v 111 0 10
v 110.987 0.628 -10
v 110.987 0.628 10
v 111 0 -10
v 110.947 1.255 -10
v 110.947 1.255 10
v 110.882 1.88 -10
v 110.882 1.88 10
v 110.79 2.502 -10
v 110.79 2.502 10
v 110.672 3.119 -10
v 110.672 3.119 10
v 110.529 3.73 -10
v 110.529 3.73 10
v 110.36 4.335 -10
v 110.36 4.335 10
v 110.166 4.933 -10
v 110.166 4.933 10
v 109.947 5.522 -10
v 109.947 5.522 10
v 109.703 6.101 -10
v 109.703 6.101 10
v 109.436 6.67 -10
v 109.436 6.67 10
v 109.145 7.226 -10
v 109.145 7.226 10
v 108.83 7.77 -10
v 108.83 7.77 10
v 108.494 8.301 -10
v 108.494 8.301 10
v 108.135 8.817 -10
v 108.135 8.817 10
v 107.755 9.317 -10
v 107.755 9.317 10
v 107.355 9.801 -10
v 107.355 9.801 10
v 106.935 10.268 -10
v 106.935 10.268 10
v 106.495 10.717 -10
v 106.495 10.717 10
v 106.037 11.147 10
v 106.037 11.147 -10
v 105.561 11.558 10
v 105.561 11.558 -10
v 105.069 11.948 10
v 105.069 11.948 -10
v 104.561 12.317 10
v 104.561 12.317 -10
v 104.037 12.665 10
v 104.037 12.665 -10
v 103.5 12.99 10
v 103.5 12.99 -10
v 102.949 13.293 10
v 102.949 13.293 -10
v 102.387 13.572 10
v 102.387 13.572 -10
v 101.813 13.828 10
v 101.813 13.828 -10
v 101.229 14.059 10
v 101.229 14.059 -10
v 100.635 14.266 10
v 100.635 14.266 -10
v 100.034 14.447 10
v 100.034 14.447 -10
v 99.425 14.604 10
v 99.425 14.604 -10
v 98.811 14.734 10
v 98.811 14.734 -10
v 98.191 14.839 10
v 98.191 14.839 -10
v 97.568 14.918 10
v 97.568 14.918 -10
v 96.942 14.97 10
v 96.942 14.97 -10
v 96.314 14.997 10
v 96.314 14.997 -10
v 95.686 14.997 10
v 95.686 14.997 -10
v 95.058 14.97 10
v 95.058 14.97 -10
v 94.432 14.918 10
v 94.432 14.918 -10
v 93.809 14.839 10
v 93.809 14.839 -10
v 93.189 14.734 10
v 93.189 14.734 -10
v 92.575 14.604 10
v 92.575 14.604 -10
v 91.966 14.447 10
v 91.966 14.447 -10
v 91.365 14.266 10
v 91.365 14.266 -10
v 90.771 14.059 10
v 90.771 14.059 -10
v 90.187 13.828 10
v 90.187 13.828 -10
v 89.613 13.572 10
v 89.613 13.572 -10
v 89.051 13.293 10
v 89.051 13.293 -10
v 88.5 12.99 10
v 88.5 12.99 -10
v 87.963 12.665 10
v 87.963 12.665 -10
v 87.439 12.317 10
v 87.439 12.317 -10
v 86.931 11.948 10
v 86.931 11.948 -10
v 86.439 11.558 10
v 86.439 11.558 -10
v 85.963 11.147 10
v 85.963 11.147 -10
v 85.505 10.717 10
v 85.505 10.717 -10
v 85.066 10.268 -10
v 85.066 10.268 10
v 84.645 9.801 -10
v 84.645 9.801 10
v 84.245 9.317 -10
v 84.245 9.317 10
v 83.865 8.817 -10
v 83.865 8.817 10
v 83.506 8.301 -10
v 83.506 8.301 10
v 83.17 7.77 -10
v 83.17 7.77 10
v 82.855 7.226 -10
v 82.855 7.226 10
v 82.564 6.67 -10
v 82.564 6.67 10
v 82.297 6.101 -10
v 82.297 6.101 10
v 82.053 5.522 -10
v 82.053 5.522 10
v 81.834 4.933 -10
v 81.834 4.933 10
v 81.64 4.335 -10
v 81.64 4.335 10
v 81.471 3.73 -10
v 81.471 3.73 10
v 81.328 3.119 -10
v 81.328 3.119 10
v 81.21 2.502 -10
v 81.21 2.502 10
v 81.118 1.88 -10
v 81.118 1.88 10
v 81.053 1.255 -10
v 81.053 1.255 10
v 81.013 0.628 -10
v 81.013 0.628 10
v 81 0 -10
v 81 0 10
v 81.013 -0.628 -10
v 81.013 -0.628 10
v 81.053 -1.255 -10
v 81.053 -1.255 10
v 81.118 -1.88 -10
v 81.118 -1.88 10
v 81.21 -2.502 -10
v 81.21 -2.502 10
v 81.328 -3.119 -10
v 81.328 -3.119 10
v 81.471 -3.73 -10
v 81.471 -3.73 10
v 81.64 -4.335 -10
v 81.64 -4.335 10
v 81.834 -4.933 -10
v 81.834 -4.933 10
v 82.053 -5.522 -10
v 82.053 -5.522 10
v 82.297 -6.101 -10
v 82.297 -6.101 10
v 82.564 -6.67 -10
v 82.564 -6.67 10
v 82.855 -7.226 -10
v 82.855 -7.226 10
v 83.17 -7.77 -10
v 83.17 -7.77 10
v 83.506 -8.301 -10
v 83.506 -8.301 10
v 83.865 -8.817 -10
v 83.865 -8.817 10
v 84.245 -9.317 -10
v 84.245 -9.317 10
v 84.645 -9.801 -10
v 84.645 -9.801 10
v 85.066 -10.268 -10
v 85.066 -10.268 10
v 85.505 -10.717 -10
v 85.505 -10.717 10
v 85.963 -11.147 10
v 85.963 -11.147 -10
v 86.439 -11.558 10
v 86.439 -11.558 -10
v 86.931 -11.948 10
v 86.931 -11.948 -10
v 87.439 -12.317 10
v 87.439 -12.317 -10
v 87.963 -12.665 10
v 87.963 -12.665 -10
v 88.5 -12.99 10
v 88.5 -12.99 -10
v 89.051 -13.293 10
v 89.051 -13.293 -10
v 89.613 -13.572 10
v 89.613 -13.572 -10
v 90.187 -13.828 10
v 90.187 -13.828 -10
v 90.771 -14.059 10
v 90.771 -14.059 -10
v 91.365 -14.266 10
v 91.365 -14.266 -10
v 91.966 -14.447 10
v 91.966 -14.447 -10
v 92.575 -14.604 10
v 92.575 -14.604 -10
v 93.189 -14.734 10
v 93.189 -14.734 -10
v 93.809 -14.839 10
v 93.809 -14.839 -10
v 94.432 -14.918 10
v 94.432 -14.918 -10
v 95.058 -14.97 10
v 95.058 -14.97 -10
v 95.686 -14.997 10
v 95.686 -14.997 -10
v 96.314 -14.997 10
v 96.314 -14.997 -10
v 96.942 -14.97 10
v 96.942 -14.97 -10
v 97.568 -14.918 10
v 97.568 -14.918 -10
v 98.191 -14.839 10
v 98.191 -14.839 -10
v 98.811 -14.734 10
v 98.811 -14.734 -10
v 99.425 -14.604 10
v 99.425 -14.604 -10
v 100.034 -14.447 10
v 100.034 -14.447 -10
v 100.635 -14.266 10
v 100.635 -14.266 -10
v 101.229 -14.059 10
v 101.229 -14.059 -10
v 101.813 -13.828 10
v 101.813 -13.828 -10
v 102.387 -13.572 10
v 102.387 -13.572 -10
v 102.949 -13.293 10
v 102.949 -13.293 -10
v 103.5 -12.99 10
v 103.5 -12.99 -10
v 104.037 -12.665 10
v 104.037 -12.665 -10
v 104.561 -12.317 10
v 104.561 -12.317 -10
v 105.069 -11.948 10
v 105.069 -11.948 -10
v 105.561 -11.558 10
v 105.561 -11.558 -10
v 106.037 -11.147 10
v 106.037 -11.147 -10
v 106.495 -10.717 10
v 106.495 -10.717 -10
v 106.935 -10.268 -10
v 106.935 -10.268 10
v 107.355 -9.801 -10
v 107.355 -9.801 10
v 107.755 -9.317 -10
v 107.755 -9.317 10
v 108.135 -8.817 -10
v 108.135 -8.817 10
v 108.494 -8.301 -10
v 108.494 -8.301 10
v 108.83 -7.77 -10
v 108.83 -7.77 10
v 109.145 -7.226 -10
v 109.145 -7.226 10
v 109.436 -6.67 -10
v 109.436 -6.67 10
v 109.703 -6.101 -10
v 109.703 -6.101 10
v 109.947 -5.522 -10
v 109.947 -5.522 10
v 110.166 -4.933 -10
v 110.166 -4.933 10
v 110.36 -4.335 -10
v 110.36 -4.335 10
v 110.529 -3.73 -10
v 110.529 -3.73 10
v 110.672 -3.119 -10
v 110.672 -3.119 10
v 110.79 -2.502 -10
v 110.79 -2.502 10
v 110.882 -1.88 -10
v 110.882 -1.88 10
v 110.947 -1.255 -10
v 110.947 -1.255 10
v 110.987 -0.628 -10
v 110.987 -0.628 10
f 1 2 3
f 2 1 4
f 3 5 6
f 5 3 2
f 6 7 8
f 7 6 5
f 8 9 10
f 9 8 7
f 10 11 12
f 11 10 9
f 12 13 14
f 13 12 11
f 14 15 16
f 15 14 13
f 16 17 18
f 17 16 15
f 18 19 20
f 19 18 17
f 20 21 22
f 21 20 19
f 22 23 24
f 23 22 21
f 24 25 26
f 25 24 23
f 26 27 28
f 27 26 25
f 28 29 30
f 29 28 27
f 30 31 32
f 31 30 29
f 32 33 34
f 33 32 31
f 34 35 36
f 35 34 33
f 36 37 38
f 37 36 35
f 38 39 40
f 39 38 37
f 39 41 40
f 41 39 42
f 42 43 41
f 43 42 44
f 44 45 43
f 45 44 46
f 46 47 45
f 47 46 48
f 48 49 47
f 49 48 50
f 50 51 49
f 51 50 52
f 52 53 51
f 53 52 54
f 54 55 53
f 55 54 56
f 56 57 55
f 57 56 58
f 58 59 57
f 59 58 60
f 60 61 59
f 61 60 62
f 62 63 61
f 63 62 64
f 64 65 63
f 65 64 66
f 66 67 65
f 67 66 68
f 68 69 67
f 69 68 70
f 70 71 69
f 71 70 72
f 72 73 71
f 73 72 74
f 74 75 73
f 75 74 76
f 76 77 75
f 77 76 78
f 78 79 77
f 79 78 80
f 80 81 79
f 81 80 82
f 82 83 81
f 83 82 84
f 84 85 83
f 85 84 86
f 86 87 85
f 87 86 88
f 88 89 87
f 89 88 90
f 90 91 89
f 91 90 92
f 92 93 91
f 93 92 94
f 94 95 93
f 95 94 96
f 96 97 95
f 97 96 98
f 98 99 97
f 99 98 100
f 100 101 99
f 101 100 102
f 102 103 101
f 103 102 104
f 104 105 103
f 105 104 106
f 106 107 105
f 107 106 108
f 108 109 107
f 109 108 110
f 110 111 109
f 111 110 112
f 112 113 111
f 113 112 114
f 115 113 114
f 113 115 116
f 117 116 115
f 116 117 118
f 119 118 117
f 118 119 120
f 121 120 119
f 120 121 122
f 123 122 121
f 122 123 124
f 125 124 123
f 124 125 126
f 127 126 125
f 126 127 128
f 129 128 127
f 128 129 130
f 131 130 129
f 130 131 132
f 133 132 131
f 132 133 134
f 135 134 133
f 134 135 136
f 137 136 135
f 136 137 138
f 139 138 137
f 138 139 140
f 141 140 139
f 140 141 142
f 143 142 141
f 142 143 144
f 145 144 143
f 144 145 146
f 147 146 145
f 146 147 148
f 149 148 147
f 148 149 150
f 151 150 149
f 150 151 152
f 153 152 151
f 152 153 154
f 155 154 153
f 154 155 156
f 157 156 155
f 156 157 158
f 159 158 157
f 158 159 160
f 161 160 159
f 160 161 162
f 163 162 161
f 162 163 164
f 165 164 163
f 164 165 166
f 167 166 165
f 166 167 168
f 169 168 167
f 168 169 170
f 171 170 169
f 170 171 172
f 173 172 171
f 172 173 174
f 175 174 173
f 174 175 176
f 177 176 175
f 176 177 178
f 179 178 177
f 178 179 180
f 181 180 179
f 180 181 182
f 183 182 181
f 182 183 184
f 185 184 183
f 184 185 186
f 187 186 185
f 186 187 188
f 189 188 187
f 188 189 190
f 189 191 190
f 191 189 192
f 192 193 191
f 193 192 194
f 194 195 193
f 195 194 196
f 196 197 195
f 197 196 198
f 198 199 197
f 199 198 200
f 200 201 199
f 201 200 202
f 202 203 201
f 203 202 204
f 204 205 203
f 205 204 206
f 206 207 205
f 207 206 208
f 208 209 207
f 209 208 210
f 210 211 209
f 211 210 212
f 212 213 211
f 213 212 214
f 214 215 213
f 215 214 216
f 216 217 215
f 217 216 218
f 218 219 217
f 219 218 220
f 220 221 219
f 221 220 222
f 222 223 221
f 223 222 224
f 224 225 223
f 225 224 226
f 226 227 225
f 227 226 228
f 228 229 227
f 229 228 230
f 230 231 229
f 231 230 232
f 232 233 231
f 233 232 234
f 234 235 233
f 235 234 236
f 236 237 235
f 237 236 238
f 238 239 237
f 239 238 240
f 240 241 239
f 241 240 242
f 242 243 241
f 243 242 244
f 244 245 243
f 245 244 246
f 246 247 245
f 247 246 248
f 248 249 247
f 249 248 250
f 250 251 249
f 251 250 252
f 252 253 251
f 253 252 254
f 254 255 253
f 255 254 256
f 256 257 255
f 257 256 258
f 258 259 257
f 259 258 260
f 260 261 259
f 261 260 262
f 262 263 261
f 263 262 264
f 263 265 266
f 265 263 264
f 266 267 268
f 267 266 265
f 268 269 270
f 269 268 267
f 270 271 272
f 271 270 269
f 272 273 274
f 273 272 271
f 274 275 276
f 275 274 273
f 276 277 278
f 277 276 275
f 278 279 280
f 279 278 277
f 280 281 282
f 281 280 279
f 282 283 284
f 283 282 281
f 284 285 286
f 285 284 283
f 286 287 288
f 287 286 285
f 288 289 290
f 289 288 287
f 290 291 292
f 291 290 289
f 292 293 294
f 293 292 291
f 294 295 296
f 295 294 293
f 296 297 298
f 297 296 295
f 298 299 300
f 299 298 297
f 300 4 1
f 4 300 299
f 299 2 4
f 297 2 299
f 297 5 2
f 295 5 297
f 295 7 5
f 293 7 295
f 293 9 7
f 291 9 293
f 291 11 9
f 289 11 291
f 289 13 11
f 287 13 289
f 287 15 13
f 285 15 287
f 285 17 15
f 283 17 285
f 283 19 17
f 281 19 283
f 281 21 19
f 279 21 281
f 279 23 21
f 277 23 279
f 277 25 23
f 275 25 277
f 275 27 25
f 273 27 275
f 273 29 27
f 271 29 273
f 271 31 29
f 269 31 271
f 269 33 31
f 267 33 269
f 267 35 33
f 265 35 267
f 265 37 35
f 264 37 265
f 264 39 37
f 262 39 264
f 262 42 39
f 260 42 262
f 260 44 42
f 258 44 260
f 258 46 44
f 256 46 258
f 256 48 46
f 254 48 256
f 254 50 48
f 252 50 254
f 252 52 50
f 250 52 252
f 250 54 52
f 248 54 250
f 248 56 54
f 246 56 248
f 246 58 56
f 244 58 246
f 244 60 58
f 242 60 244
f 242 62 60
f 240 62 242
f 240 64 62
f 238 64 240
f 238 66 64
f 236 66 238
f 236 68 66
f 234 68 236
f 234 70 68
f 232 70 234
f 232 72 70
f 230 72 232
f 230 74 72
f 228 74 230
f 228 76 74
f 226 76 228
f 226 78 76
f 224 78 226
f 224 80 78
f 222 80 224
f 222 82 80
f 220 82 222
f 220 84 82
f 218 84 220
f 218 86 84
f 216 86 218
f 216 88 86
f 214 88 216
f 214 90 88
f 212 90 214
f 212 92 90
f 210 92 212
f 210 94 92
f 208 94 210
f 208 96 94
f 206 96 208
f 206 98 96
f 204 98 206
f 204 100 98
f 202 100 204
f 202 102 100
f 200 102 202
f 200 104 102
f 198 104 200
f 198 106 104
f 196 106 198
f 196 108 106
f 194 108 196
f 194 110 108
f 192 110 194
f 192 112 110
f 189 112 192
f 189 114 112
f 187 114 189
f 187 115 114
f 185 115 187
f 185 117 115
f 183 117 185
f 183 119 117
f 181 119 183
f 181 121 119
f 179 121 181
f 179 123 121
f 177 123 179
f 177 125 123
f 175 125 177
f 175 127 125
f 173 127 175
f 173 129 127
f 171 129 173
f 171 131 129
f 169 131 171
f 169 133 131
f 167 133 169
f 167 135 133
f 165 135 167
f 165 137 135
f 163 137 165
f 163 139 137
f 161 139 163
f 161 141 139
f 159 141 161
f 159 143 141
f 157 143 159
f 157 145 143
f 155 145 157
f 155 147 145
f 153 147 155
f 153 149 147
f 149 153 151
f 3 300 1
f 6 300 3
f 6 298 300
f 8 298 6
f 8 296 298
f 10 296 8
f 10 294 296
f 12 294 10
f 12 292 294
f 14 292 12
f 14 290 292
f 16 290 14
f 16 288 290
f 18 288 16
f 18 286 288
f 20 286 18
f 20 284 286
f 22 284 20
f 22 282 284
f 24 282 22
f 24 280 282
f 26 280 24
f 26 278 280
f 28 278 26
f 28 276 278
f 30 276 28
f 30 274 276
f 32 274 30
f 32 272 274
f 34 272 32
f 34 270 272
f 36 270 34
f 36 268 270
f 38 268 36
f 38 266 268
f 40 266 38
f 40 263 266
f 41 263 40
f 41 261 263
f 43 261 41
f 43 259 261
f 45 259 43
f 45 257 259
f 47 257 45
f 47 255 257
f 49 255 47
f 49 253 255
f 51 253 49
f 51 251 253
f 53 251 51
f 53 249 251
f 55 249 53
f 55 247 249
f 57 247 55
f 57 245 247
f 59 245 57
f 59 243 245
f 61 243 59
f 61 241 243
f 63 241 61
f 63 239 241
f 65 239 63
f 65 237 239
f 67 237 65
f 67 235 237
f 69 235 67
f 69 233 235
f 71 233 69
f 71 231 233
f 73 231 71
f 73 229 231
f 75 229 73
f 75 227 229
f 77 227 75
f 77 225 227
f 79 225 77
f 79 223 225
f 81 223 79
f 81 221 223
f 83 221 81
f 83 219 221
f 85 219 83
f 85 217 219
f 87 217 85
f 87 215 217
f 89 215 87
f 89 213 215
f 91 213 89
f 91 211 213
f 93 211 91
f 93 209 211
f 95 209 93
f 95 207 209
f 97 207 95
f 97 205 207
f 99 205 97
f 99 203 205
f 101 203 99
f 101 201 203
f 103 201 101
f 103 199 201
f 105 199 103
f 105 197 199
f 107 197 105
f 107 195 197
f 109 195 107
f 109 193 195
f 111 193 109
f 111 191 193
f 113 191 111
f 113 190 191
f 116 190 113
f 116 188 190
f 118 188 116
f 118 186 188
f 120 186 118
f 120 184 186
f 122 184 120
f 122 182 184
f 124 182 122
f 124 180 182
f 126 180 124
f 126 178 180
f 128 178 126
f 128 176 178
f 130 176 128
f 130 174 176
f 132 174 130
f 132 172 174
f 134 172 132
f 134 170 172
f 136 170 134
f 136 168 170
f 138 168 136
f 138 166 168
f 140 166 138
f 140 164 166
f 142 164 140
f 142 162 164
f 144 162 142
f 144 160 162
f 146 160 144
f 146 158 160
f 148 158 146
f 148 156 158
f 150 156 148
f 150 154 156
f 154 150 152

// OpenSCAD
$fn = 150;

translate([96, 0, 0])
rotate([0, 0, 0])
cylinder(20, 15, 15, true);
